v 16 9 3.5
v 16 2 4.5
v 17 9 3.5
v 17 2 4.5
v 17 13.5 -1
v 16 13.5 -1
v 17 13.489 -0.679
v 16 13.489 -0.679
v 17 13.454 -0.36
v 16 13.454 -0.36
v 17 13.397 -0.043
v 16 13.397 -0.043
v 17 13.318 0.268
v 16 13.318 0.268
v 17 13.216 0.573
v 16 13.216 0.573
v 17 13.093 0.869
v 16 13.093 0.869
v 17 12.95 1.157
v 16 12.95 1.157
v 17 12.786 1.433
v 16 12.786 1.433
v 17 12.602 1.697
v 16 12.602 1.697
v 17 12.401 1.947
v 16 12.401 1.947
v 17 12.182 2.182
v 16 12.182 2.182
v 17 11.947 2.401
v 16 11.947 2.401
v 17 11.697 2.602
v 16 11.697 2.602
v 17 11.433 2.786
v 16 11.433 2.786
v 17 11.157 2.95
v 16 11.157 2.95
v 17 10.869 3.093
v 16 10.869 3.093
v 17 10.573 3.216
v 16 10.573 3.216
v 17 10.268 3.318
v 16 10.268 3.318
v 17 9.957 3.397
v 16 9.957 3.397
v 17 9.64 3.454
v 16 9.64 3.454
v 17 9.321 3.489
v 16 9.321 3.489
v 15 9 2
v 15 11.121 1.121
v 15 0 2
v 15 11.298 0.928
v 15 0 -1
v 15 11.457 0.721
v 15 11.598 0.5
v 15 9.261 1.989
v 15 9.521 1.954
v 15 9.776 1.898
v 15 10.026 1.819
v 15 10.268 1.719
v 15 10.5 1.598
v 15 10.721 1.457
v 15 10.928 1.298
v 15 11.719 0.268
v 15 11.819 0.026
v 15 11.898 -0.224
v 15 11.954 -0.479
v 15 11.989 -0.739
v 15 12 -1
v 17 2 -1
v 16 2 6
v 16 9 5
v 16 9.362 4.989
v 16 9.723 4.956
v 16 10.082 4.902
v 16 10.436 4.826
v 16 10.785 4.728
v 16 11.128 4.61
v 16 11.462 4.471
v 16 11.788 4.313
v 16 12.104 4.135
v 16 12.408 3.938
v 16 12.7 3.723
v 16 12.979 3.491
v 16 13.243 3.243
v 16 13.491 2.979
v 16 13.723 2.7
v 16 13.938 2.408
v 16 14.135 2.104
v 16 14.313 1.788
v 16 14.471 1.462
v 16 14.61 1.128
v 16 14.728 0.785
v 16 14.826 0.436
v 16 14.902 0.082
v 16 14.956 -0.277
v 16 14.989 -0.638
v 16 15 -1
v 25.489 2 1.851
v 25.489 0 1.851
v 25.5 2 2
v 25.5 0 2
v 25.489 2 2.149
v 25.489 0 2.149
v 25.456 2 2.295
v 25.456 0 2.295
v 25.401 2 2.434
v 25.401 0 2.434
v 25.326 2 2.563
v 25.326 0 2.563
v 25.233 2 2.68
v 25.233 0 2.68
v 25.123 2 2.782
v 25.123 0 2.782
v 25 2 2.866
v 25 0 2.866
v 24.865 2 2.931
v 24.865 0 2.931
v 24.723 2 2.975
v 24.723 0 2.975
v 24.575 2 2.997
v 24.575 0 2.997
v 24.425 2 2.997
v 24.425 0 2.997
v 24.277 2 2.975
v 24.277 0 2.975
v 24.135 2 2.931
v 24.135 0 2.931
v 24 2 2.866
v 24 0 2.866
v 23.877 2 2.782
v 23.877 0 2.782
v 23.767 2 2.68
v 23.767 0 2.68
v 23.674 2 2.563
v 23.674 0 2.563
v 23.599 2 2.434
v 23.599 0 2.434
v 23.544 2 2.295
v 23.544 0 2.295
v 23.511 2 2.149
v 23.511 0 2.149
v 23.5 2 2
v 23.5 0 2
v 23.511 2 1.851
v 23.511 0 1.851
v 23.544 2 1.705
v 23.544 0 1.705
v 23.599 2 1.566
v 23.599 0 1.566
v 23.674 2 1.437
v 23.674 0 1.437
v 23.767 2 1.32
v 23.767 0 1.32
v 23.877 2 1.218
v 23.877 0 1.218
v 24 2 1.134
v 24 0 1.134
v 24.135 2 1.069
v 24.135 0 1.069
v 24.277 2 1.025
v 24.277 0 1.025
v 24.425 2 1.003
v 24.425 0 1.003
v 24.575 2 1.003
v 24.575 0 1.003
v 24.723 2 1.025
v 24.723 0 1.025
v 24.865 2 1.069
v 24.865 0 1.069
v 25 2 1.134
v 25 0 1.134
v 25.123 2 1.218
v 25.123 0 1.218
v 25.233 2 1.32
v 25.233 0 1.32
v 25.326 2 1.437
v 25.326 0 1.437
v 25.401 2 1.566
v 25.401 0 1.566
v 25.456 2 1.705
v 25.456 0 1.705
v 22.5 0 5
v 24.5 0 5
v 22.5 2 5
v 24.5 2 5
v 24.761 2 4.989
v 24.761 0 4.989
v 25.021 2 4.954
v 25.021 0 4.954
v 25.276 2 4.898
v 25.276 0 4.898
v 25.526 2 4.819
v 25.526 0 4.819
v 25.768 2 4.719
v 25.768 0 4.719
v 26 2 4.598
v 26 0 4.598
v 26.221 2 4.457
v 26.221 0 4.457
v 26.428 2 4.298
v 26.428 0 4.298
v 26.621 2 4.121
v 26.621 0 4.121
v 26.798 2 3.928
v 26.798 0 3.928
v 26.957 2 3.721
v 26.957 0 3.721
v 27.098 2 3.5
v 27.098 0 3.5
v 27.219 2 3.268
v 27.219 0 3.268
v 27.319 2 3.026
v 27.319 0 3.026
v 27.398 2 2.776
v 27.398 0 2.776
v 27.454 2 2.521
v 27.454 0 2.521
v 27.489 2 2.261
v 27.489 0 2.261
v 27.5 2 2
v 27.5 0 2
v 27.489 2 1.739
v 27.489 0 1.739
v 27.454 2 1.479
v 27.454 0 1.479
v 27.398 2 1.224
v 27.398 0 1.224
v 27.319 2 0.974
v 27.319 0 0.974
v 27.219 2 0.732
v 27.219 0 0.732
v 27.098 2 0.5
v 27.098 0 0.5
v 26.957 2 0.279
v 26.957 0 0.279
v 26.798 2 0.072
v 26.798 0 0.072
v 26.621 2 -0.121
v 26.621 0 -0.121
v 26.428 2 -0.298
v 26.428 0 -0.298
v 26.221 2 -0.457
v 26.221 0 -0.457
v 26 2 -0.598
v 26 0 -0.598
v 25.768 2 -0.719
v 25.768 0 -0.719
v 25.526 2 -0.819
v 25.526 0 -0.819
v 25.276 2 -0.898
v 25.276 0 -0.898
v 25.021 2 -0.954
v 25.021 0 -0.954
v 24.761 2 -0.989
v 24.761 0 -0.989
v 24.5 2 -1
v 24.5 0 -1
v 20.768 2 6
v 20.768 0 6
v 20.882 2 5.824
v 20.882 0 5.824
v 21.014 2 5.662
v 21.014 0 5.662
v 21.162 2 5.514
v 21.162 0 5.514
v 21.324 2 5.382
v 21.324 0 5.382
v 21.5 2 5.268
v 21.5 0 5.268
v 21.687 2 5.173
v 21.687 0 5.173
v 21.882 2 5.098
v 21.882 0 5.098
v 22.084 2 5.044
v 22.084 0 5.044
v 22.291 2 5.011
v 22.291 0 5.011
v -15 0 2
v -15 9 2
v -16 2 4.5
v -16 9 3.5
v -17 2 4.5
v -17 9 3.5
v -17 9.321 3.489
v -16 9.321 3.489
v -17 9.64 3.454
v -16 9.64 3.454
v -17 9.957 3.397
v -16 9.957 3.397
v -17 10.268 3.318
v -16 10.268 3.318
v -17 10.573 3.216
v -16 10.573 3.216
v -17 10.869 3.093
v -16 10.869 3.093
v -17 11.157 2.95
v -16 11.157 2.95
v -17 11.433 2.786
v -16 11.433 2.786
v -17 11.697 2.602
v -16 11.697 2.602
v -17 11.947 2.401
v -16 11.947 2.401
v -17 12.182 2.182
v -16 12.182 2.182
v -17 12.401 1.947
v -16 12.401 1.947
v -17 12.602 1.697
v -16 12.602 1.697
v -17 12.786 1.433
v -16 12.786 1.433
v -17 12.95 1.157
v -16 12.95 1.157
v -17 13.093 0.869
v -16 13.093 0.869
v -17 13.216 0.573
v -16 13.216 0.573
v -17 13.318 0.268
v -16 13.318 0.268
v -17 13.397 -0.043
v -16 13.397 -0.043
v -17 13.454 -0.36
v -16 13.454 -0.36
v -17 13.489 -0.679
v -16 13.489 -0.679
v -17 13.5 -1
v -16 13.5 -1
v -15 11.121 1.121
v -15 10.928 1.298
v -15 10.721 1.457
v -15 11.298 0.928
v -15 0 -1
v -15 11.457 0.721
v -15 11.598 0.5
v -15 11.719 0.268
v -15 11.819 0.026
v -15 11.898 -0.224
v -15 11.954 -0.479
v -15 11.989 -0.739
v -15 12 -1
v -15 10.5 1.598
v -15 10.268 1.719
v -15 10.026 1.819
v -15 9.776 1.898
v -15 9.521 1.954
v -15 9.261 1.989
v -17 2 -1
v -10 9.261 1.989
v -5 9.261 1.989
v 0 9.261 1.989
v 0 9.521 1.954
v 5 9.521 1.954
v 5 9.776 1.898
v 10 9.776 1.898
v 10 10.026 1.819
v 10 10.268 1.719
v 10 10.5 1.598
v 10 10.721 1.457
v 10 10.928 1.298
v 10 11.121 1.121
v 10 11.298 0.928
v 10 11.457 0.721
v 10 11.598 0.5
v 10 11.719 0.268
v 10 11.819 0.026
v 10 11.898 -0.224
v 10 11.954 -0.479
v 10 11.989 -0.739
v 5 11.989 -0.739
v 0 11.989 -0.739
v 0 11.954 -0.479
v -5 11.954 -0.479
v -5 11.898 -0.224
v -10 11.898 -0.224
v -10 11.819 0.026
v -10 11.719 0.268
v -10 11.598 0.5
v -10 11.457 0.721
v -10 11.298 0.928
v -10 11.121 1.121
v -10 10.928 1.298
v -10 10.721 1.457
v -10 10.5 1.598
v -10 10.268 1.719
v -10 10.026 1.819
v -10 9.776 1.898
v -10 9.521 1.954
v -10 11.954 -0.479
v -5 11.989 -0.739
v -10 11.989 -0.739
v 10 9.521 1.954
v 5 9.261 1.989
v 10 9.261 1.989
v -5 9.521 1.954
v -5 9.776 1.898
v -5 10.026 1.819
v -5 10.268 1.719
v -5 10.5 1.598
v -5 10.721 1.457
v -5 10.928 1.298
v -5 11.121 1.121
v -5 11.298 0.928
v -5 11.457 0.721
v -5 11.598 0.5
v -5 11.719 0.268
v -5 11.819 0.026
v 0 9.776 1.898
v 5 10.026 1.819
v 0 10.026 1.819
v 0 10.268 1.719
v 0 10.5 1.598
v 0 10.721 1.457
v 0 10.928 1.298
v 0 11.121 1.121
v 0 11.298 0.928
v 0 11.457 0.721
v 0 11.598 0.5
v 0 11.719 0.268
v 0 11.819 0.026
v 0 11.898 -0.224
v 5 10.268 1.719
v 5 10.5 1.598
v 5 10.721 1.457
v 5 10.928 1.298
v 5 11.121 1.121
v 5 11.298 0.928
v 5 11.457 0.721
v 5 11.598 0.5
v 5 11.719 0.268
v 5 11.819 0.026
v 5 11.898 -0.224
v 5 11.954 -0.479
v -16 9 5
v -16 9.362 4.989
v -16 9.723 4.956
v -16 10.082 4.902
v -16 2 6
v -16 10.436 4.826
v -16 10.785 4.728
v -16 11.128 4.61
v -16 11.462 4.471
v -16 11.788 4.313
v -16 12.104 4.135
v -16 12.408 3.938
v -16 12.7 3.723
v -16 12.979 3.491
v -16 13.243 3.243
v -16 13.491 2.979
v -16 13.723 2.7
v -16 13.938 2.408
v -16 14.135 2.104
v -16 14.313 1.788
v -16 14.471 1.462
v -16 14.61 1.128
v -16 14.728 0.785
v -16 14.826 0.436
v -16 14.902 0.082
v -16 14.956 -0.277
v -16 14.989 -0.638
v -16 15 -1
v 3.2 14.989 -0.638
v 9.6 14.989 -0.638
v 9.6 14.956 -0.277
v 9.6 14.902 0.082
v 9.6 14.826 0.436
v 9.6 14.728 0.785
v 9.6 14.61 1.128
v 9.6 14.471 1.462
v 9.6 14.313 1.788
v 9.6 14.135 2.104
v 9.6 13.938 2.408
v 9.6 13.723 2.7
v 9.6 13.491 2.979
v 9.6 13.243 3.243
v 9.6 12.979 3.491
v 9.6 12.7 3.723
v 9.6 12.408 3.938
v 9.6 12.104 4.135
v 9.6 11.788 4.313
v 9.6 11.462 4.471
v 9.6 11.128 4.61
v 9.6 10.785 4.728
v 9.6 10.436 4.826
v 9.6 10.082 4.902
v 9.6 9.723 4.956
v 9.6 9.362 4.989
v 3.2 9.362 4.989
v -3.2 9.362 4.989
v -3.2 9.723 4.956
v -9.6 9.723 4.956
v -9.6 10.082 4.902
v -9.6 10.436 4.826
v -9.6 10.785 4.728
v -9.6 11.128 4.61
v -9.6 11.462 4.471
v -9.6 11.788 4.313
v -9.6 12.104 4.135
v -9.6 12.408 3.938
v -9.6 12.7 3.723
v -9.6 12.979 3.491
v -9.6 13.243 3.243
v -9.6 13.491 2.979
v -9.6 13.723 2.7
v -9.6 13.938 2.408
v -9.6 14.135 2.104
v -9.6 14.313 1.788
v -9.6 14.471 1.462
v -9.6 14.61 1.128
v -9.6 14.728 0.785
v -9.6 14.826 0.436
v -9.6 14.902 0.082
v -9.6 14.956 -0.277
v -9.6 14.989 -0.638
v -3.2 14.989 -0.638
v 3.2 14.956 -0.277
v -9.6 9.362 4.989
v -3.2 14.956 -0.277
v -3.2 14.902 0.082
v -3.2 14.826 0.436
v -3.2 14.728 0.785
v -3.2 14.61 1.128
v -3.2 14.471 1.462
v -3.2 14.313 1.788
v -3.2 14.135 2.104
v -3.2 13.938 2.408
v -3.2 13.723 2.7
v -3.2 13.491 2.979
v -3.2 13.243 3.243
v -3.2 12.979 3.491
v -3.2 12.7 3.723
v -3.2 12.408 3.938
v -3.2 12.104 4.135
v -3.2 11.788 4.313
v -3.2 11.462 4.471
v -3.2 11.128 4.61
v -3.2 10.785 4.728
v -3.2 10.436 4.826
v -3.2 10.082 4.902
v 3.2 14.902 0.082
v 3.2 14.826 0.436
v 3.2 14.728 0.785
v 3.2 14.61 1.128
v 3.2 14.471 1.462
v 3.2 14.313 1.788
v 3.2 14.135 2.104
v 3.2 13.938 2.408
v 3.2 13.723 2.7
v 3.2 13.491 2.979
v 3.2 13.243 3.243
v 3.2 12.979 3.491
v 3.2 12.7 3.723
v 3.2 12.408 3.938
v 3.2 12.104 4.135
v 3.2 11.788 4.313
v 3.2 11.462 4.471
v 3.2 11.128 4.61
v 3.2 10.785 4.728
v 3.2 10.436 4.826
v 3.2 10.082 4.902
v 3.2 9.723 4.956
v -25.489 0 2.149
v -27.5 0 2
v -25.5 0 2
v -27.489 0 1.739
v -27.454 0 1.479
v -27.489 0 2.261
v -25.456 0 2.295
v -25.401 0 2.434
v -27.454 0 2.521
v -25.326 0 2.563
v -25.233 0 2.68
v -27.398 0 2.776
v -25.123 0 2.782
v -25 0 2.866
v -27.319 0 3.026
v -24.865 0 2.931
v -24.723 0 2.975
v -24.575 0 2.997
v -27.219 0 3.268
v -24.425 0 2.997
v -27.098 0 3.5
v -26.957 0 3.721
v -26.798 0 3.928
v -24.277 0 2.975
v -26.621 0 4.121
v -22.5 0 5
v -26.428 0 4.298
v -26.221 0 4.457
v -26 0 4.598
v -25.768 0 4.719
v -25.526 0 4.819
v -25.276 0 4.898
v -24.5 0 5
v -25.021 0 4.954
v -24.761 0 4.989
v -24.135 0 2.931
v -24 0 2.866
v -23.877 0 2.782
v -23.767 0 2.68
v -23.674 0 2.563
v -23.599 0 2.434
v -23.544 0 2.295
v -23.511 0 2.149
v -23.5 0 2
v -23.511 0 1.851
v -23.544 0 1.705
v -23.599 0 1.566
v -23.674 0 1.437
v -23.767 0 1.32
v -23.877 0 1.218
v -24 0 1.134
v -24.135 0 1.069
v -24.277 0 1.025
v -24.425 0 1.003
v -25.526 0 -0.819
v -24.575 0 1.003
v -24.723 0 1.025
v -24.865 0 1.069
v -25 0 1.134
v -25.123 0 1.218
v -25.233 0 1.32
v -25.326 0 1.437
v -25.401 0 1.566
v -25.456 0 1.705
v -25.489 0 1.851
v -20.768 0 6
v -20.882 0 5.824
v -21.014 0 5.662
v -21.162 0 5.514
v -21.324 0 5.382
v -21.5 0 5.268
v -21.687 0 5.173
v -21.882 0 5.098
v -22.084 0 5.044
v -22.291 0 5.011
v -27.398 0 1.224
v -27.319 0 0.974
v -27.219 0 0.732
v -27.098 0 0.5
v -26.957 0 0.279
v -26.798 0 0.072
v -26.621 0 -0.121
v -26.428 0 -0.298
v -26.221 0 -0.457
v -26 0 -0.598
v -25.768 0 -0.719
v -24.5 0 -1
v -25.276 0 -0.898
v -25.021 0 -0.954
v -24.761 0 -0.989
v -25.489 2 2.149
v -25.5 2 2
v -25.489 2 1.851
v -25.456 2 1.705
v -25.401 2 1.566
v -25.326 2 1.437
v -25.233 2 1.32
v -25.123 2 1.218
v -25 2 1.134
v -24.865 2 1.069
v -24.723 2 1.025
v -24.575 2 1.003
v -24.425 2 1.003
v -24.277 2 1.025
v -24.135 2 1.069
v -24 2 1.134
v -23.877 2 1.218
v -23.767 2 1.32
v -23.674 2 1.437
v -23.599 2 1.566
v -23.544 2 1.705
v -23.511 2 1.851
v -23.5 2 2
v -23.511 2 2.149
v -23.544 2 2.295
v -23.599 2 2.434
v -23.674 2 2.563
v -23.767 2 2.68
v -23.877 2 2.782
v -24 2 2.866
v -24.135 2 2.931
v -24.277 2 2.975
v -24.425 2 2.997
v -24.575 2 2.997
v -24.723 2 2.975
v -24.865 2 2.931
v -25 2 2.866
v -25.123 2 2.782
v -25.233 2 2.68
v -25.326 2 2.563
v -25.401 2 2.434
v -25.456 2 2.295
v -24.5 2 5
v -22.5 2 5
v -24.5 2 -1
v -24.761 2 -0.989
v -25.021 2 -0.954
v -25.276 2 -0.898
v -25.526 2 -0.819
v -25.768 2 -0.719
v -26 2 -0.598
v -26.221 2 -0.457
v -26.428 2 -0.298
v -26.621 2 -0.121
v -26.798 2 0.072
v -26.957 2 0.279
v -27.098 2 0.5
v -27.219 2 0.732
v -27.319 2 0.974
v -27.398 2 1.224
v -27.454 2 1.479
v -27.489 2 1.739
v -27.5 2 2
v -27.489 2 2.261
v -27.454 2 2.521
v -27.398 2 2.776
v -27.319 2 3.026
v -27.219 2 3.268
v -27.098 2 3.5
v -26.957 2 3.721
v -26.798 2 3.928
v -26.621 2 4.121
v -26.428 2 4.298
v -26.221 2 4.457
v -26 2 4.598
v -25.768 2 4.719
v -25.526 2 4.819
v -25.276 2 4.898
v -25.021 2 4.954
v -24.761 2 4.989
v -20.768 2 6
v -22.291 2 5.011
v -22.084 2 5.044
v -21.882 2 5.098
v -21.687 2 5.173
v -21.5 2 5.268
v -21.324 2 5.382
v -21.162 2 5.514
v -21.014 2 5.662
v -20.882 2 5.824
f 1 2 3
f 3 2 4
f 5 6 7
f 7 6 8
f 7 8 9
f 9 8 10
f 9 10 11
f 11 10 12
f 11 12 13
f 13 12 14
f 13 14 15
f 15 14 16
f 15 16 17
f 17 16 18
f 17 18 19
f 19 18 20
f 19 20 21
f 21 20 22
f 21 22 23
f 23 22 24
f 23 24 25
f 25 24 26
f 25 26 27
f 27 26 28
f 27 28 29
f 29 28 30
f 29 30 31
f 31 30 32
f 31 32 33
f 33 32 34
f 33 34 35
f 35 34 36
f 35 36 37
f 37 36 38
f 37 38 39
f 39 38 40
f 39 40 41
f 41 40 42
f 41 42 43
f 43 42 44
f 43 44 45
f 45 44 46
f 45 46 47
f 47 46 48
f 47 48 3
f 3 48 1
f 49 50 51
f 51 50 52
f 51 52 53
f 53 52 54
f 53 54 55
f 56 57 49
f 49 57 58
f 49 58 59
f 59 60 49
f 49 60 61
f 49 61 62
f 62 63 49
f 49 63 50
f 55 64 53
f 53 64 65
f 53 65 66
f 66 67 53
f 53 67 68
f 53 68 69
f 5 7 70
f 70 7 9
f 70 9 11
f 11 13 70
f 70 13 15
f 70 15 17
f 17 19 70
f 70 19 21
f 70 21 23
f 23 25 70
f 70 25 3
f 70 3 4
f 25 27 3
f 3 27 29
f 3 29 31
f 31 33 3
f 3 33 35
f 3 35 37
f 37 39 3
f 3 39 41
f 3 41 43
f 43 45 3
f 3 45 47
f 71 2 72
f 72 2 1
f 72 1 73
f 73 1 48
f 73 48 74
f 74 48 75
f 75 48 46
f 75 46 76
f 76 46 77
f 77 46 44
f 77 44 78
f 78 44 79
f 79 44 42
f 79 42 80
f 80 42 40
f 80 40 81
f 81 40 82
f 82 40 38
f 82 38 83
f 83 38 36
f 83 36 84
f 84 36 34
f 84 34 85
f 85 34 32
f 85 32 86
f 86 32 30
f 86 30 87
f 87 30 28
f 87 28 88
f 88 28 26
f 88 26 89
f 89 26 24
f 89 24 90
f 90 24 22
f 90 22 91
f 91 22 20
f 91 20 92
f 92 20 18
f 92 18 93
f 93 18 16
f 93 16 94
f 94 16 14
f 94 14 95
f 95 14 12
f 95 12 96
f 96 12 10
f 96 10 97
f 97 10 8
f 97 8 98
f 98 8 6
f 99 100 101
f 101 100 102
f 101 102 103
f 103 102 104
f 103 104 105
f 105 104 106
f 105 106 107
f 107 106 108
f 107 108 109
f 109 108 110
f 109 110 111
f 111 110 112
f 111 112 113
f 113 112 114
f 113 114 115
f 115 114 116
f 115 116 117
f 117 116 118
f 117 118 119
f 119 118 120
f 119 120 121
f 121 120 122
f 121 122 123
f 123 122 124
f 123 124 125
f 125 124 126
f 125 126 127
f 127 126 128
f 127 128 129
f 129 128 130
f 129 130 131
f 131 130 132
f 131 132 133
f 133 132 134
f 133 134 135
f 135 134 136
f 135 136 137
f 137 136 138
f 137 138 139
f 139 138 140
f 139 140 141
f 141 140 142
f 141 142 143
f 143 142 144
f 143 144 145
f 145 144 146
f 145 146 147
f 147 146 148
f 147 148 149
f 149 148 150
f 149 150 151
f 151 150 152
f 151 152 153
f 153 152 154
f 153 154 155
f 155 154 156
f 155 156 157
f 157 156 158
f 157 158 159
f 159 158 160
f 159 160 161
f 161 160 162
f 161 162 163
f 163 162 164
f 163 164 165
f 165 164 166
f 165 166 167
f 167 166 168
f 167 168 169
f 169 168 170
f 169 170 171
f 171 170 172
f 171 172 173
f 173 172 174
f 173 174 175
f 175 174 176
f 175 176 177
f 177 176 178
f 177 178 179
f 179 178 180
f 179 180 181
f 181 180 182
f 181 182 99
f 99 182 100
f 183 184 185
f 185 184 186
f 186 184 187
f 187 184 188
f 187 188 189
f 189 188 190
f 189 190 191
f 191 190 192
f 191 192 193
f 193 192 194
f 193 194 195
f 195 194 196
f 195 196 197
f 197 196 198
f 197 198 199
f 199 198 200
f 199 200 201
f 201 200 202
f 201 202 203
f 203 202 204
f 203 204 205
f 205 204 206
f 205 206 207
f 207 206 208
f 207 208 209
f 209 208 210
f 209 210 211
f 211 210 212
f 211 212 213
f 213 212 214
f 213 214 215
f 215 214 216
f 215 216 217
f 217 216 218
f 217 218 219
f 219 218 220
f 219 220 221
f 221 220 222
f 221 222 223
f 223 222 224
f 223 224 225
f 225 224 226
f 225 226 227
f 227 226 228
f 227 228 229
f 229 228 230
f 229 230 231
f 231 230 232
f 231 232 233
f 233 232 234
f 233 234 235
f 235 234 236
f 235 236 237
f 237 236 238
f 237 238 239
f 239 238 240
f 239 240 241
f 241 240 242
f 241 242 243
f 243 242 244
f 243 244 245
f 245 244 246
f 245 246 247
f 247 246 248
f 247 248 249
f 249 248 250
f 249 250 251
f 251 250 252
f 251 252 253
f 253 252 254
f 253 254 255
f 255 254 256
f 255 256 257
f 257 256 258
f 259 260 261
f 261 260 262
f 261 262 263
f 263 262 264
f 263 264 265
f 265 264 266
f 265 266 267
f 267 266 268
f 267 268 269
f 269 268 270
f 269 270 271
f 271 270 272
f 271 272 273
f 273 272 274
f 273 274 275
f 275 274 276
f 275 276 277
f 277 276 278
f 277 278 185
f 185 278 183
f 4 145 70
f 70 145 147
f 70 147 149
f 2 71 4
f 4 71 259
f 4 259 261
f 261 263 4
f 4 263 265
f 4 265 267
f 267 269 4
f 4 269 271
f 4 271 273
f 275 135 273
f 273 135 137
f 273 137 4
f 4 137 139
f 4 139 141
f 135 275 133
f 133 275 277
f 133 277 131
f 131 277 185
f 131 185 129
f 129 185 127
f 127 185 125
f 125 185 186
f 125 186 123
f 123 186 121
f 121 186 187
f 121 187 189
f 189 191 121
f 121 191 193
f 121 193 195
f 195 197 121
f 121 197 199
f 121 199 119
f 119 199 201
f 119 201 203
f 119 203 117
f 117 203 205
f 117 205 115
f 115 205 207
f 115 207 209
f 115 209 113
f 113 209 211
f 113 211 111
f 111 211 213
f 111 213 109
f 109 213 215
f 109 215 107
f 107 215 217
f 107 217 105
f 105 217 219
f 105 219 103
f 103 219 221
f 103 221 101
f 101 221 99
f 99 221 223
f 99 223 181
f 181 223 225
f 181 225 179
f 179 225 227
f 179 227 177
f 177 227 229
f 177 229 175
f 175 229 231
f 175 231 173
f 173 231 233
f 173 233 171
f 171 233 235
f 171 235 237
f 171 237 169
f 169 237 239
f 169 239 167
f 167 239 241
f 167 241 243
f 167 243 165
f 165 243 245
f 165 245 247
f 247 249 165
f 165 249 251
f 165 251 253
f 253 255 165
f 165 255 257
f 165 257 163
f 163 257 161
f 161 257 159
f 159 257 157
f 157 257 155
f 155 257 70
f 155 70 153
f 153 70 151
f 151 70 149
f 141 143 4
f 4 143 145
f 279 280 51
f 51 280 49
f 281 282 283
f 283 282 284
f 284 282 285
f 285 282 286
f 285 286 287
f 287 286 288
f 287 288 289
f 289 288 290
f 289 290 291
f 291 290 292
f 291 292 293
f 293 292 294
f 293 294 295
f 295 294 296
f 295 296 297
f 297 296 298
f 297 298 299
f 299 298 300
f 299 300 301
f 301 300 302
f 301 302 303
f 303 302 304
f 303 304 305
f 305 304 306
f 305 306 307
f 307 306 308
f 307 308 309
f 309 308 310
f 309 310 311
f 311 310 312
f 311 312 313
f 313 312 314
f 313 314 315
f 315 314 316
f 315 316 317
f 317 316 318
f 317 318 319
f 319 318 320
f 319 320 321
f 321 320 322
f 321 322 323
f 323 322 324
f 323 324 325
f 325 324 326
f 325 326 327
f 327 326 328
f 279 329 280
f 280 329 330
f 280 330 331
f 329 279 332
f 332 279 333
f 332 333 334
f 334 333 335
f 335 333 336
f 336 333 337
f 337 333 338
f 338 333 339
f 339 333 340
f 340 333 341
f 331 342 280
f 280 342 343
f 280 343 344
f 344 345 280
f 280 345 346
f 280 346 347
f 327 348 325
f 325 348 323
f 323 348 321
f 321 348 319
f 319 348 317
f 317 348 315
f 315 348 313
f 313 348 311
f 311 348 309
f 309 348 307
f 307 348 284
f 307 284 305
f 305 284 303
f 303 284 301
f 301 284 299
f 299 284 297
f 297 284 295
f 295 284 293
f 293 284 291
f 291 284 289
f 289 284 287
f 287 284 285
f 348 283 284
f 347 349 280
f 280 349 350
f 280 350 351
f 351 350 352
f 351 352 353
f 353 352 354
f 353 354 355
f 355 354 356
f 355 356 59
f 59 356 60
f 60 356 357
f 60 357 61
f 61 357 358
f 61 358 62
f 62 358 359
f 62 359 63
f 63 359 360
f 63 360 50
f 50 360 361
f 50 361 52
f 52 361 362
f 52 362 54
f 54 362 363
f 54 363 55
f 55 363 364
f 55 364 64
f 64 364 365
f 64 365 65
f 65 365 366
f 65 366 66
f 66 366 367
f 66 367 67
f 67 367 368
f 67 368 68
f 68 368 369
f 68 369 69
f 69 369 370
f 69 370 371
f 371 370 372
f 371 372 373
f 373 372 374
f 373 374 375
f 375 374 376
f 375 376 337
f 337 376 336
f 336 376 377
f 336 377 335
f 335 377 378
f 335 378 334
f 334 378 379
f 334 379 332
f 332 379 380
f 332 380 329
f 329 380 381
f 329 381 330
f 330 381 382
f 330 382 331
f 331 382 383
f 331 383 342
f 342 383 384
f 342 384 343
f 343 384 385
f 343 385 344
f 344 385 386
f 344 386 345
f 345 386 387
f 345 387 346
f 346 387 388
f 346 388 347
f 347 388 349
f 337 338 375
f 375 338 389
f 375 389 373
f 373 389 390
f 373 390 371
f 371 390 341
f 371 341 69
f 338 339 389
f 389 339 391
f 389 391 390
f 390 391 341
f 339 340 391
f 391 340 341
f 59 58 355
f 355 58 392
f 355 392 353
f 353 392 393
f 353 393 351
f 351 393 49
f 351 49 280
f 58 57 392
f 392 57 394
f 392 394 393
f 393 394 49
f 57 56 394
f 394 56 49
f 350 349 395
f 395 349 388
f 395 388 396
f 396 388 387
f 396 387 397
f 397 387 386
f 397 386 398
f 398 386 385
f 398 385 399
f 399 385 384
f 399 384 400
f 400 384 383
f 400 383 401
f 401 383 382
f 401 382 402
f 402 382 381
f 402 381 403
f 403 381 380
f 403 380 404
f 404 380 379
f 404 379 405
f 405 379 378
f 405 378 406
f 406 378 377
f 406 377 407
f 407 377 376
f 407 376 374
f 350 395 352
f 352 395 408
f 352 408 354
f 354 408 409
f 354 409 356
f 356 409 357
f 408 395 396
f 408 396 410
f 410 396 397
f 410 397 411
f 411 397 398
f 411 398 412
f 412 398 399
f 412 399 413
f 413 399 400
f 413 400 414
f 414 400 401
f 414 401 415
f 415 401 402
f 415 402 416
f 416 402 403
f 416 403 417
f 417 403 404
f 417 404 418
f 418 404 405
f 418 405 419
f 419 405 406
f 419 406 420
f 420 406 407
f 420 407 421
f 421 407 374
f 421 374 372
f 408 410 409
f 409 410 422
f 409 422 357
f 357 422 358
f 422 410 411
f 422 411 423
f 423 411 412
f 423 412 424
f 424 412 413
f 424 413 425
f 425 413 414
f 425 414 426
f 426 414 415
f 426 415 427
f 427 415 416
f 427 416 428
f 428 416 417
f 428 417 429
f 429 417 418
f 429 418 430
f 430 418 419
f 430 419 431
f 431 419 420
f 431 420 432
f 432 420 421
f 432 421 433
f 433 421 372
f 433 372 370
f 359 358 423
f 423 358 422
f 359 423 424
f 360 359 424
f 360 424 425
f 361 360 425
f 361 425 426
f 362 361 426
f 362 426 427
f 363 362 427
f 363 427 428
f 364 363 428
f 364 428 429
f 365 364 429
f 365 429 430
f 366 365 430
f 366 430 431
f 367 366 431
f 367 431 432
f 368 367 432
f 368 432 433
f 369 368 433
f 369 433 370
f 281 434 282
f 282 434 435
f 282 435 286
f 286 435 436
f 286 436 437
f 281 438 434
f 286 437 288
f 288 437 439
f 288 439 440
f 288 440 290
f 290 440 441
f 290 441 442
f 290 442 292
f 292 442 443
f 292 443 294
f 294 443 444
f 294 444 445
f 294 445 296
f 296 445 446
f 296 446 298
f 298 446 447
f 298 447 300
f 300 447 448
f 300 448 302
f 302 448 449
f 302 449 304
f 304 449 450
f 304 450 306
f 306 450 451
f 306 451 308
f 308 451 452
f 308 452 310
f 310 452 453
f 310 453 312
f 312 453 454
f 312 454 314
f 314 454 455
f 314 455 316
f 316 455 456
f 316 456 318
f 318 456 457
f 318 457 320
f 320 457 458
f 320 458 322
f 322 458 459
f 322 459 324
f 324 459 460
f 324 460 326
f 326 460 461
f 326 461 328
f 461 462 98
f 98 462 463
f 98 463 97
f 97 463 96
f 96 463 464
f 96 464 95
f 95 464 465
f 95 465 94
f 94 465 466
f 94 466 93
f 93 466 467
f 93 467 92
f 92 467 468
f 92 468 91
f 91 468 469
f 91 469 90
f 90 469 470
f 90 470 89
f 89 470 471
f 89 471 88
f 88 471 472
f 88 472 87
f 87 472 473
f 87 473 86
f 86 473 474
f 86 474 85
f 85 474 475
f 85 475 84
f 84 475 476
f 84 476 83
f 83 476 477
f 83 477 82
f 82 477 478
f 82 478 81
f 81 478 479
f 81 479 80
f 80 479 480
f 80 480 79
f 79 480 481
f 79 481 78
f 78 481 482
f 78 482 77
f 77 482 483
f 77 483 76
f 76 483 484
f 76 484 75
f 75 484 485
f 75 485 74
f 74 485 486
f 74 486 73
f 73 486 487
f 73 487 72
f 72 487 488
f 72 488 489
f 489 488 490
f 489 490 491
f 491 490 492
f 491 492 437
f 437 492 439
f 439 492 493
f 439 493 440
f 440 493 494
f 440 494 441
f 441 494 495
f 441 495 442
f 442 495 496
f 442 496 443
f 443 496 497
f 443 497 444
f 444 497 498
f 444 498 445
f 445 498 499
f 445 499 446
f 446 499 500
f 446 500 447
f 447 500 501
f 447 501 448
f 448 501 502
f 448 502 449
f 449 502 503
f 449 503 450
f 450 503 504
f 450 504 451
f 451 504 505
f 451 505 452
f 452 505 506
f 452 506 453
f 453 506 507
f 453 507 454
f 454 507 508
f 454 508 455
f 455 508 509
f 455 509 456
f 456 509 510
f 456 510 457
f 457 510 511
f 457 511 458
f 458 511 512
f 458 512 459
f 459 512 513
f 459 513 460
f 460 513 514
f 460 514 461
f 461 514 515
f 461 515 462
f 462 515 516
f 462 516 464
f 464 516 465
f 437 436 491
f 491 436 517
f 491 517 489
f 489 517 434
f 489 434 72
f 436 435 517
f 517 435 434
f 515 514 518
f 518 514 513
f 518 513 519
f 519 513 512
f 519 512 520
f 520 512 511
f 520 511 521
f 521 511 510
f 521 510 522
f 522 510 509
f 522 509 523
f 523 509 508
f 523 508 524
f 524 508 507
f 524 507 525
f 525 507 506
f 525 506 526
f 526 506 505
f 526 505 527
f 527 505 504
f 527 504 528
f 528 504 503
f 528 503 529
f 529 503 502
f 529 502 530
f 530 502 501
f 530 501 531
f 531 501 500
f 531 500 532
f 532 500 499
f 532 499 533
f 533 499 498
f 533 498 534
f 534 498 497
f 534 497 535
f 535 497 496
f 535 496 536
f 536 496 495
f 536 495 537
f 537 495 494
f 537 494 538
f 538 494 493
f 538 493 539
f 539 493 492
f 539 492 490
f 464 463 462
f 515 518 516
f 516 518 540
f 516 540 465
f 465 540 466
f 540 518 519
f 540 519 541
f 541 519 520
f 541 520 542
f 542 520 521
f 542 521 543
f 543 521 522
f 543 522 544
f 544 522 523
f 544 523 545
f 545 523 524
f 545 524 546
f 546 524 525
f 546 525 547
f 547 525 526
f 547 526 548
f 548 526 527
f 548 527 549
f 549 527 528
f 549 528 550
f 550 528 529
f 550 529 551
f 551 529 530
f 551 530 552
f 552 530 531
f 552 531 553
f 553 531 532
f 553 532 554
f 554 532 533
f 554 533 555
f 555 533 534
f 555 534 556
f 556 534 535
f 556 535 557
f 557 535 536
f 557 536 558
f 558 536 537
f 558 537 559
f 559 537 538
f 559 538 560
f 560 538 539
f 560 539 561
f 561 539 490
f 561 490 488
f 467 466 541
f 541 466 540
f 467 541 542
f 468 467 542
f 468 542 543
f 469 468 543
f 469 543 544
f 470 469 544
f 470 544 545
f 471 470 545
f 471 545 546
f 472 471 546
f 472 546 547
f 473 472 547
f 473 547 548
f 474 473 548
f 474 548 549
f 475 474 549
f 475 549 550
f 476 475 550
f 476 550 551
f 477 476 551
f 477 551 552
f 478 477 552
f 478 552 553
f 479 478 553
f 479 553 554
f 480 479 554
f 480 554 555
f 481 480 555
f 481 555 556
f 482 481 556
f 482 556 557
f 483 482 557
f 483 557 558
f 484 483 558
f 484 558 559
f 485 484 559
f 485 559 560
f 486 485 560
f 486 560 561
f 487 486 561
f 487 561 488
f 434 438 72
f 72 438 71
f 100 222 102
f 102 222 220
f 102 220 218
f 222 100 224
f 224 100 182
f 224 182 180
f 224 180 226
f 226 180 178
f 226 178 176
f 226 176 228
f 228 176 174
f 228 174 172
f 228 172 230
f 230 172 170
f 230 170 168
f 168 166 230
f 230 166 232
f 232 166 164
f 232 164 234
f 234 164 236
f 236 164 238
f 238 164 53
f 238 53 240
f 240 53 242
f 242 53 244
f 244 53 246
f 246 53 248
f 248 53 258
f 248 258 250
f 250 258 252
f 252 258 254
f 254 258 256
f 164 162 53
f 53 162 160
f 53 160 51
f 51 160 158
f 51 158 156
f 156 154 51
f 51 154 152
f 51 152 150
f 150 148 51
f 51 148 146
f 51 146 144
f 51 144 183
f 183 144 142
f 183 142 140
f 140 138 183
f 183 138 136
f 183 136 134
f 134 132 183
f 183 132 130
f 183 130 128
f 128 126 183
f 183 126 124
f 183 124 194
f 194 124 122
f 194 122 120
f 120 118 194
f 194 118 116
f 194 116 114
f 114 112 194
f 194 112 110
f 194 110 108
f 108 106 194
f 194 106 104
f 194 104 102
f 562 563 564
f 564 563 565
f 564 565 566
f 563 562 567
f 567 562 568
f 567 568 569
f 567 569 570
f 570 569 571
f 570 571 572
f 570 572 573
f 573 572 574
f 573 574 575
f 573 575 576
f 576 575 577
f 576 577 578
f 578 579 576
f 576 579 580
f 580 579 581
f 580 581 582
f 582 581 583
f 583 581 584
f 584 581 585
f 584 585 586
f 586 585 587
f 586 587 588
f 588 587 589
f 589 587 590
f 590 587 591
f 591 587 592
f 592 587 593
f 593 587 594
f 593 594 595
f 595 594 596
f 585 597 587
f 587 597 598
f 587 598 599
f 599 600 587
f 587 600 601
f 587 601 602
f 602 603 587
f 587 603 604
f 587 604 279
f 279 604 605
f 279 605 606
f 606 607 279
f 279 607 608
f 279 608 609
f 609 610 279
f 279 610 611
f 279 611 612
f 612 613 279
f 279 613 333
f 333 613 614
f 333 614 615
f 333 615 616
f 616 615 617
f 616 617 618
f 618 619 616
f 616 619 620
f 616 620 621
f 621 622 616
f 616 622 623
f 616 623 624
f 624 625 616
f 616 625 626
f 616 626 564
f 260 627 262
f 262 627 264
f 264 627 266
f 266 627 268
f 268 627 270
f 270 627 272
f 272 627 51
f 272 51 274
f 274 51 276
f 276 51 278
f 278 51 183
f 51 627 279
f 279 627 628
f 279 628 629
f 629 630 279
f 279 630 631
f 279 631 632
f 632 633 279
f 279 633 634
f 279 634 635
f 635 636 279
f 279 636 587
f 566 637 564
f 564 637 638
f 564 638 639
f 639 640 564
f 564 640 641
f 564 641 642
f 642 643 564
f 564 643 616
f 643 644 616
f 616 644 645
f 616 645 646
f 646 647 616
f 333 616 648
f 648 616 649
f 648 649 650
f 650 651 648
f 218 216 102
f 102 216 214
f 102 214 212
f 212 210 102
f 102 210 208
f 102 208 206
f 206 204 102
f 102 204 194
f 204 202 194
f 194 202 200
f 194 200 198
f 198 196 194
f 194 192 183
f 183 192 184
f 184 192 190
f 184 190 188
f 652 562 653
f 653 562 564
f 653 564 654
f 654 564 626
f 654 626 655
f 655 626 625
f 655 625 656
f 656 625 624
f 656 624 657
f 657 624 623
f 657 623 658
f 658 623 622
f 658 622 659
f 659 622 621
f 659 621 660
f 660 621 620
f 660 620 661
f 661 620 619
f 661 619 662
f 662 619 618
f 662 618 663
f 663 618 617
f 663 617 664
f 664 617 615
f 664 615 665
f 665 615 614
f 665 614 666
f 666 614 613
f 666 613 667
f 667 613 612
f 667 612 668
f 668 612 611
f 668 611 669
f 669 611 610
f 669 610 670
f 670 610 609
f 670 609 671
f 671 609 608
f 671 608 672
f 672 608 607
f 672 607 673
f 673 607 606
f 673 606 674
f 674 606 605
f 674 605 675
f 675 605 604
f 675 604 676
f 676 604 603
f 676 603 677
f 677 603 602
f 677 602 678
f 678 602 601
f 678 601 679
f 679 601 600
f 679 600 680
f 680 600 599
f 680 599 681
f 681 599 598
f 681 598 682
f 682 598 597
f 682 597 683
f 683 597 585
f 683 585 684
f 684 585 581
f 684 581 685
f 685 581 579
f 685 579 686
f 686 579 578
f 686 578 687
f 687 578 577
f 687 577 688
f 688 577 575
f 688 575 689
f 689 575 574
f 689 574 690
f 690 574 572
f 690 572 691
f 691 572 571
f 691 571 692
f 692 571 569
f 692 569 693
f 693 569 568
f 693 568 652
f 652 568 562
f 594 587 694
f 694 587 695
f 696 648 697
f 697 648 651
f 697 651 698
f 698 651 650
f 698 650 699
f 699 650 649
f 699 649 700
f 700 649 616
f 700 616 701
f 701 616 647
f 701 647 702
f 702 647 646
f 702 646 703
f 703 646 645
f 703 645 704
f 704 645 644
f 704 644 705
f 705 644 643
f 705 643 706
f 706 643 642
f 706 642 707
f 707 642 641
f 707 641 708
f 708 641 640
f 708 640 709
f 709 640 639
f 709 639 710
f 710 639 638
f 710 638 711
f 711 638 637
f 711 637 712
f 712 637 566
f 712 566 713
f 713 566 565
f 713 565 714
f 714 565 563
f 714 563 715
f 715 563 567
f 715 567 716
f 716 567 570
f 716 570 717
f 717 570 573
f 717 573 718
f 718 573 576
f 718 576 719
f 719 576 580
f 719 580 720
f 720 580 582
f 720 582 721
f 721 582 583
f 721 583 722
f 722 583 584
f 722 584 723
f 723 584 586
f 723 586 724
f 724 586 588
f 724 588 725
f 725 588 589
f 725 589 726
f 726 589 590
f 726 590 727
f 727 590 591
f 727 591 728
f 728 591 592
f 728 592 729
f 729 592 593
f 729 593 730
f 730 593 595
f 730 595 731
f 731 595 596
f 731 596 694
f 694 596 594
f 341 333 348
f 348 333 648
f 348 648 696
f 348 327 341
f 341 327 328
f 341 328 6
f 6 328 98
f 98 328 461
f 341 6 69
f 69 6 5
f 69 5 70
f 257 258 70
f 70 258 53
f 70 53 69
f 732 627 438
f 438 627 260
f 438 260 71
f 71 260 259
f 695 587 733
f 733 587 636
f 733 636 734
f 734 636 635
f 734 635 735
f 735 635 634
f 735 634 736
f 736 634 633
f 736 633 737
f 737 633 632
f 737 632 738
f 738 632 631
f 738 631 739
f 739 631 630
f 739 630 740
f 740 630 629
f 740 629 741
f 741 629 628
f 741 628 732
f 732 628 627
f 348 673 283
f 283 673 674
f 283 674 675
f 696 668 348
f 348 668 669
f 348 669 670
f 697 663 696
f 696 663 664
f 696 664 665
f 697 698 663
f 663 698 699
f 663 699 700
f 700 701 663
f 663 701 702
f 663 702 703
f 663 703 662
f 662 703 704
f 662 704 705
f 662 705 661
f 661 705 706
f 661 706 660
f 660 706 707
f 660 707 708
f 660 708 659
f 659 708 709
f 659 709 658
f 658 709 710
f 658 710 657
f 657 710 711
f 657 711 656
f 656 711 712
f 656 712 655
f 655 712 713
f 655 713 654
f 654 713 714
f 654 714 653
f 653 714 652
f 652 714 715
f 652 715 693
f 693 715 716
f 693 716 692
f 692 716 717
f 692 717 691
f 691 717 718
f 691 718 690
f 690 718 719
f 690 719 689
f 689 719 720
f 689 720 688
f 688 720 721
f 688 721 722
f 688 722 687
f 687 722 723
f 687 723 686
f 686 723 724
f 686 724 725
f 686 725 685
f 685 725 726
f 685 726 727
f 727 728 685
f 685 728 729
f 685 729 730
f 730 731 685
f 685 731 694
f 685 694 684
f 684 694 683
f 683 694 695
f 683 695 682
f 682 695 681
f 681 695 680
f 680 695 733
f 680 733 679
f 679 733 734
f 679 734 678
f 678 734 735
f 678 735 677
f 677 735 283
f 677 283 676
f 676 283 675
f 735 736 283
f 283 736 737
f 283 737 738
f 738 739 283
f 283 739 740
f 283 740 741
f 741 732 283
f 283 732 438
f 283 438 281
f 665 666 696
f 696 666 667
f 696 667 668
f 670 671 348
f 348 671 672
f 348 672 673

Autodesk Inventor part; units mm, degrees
ref_plane "YZ Plane" through (0, 0, 0) normal (1, 0, 0) x (0, 1, 0)
ref_plane "XZ Plane" through (0, 0, 0) normal (0, 1, 0) x (-1, 0, 0)
ref_plane "XY Plane" through (0, 0, 0) normal (0, 0, 1) x (1, 0, 0)
sketch "Sketch1" plane through (0, 0, 0) normal (0, 1, 0) x (-1, 0, 0)
  line L0 (0, 0) -> (24.5, 0)
  line L1 (24.5, 0) -> (24.5, 5)
  line L2 (24.5, 5) -> (0, 5)
  line L3 (0, 5) -> (0, 0)
  circle A0 centre (24.5, 2) radius 3
  circle A1 centre (24.5, 2) radius 1
  line L4 (0, 0) -> (15.5, 0)
  line L5 (15.5, 0) -> (15.5, 3)
  line L6 (15.5, 3) -> (0, 3)
  line L7 (0, 3) -> (0, 0)
  line L8 (0, 3) -> (6.5, 3)
  line L9 (6.5, 3) -> (6.5, 6)
  line L10 (6.5, 6) -> (0, 6)
  line L11 (0, 6) -> (0, 3)
  line L12 (6.5, 6) -> (20.5, 6)
  line L13 (20.5, 6) -> (20.5, 5)
  line L14 (20.5, 5) -> (6.5, 5)
  line L15 (6.5, 5) -> (6.5, 6)
  circle A2 centre (22.5, 7) radius 2
  line L16 (20.5, 6) -> (24.5, 6)
  line L17 (24.5, 6) -> (24.5, 5)
  line L18 (24.5, 5) -> (20.5, 5)
  line L19 (20.5, 5) -> (20.5, 6)
  line L20 (15.5, 0) -> (24.5, 0)
  line L21 (24.5, 0) -> (24.5, -1)
  line L22 (24.5, -1) -> (15.5, -1)
  line L23 (15.5, -1) -> (15.5, 0)
  point P0 (22.5, 5)
  point P1 (20.7679, 6)
  point P2 (0, 3)
  point P3 (22.2639, 0)
  point P4 (0, 5)
  dimension "d1" = 6
  dimension "d0" = 24.5
  dimension "d2" = 2
  dimension "d3" = 2
  dimension "d4" = 3
  dimension "d5" = 3
  dimension "d6" = 9
  dimension "d7" = 3
  dimension "d8" = 18
  dimension "d9" = 4
  dimension "d10" = 4
  dimension "d11" = 2
extrude "Extrusion1" add sketch "Sketch1" along normal blind 2 contours L5 L6 L9 L2 A0 L0 | L0 A0 L22 L23 | L3 L2 L9 L6 | A0 L1 A1 L0 | L0 L21 A0 | L11 L10 L9 L2 | L1 A1 A0 L21 | L9 L12 L13 L2 | L2 L13 L16 A2
sketch "Sketch2" plane through (0, 0, 6) normal (1, 0, 0) x (0, 0, -1)
  line L0 (0, 0) -> (0, 2) projected
  line L1 (0, 2) -> (3, 2)
  line L2 (3, 2) -> (3, 12)
  line L3 (3, 12) -> (0, 12)
  line L4 (0, 12) -> (0, 2)
  line L5 (3, 0) -> (3, 2) projected
  line L6 (0, 12) -> (7, 12)
  line L7 (7, 12) -> (7, 15)
  line L8 (7, 15) -> (0, 15)
  line L9 (0, 15) -> (0, 12)
  circle A0 centre (7, 9) radius 3
  line L10 (4, 9) -> (4, 0)
  line L11 (3, 0) -> (5, 0) projected
  line L12 (3, 0) -> (3, 12)
  circle A1 centre (7, 9) radius 6
  line L13 (0, 2) -> (1, 2) projected
  line L14 (0, 2) -> (1, 9)
  point P0 (6, 0)
  point P1 (3, 9)
  point P2 (4, 6.7639)
  dimension "d20" = 6
  dimension "d14" = 10
  dimension "d15" = 0
  dimension "d16" = 7
  dimension "d17" = 3
  dimension "d21" = 3
  dimension "d22" = 7
extrude "Extrusion2" add sketch "Sketch2" against normal blind 16 contours L14 A1 L2 L1 | A1 L3 L2 | L2 A1 L10 L11 L5 | A1 L7 L6 L3 | L2 L6 A0 L10 A1
sketch "Sketch3" plane through (-16, 0, 6) normal (-1, 0, 0) x (0, 0, 1)
  arc A0 (-4, 9) -> (-7, 12) centre (-7, 9) ccw projected
  circle A1 centre (-7, 9) radius 2
  line L0 (-7, 12) -> (-7, 9)
  line L1 (-7, 9) -> (-7, 0)
  line L2 (-7, 0) -> (-7, 2) projected
  circle A2 centre (-7, 9) radius 6
  line L3 (-7, 15) -> (-7, 9)
  arc A3 (-1, 9) -> (-7, 15) centre (-7, 9) ccw projected
  line L4 (0, 2) -> (-1, 9) projected
  line L5 (-1, 9) -> (0, 2)
  line L6 (-1, 2) -> (-7, 2) projected
  line L7 (0, 2) -> (-7, 2)
  circle A4 centre (-7, 9) radius 4.5
  line L8 (-2.5, 9) -> (-1, 9)
  line L9 (-1, 2) -> (0, 2) projected
  line L10 (0, 2) -> (-1.5, 2)
  line L11 (-1.5, 2) -> (-2.5, 9)
  point P0 (-6, 0)
  point P1 (-6, 2)
  point P2 (-7, 13.5)
  point P3 (-7, 12)
  point P4 (-1.5, 2)
  dimension "d23" = 4
  dimension "d24" = 9
  dimension "d25" = 1.5
extrude "Extrusion3" add sketch "Sketch3" along normal blind 1 and the other way blind 1 contours A1 L1 L0 | A1 L0 L3 A4 L1 | A4 L11 A2 L1 | A2 L11 L6 L1 picked at (-5.7494, 8.5624) picked at (-6.0599, 11.9521)
sketch "Sketch4" plane through (-15.5, 0, -1) normal (0, 0, -1) x (-1, 0, 0)
  line L0 (-0.5, 2) -> (-0.5, 9) projected
  line L1 (0, 0) -> (0, 2) projected
  line L2 (-0.5, 2) -> (0, 2)
  line L3 (0, 2) -> (0, 0)
  line L4 (0, 0) -> (-0.5, 0)
  line L5 (-0.5, 0) -> (-0.5, 2)
  point P0 (-15.5, 0)
extrude "Extrusion4" add sketch "Sketch4" against normal up to surface (3 mm away)
mirror "Mirror1" about plane through (0, 0, 6) normal (1, 0, 0) of "Extrusion1", "Extrusion2", "Extrusion3", "Extrusion4"
properties part number "battery mount rear"
